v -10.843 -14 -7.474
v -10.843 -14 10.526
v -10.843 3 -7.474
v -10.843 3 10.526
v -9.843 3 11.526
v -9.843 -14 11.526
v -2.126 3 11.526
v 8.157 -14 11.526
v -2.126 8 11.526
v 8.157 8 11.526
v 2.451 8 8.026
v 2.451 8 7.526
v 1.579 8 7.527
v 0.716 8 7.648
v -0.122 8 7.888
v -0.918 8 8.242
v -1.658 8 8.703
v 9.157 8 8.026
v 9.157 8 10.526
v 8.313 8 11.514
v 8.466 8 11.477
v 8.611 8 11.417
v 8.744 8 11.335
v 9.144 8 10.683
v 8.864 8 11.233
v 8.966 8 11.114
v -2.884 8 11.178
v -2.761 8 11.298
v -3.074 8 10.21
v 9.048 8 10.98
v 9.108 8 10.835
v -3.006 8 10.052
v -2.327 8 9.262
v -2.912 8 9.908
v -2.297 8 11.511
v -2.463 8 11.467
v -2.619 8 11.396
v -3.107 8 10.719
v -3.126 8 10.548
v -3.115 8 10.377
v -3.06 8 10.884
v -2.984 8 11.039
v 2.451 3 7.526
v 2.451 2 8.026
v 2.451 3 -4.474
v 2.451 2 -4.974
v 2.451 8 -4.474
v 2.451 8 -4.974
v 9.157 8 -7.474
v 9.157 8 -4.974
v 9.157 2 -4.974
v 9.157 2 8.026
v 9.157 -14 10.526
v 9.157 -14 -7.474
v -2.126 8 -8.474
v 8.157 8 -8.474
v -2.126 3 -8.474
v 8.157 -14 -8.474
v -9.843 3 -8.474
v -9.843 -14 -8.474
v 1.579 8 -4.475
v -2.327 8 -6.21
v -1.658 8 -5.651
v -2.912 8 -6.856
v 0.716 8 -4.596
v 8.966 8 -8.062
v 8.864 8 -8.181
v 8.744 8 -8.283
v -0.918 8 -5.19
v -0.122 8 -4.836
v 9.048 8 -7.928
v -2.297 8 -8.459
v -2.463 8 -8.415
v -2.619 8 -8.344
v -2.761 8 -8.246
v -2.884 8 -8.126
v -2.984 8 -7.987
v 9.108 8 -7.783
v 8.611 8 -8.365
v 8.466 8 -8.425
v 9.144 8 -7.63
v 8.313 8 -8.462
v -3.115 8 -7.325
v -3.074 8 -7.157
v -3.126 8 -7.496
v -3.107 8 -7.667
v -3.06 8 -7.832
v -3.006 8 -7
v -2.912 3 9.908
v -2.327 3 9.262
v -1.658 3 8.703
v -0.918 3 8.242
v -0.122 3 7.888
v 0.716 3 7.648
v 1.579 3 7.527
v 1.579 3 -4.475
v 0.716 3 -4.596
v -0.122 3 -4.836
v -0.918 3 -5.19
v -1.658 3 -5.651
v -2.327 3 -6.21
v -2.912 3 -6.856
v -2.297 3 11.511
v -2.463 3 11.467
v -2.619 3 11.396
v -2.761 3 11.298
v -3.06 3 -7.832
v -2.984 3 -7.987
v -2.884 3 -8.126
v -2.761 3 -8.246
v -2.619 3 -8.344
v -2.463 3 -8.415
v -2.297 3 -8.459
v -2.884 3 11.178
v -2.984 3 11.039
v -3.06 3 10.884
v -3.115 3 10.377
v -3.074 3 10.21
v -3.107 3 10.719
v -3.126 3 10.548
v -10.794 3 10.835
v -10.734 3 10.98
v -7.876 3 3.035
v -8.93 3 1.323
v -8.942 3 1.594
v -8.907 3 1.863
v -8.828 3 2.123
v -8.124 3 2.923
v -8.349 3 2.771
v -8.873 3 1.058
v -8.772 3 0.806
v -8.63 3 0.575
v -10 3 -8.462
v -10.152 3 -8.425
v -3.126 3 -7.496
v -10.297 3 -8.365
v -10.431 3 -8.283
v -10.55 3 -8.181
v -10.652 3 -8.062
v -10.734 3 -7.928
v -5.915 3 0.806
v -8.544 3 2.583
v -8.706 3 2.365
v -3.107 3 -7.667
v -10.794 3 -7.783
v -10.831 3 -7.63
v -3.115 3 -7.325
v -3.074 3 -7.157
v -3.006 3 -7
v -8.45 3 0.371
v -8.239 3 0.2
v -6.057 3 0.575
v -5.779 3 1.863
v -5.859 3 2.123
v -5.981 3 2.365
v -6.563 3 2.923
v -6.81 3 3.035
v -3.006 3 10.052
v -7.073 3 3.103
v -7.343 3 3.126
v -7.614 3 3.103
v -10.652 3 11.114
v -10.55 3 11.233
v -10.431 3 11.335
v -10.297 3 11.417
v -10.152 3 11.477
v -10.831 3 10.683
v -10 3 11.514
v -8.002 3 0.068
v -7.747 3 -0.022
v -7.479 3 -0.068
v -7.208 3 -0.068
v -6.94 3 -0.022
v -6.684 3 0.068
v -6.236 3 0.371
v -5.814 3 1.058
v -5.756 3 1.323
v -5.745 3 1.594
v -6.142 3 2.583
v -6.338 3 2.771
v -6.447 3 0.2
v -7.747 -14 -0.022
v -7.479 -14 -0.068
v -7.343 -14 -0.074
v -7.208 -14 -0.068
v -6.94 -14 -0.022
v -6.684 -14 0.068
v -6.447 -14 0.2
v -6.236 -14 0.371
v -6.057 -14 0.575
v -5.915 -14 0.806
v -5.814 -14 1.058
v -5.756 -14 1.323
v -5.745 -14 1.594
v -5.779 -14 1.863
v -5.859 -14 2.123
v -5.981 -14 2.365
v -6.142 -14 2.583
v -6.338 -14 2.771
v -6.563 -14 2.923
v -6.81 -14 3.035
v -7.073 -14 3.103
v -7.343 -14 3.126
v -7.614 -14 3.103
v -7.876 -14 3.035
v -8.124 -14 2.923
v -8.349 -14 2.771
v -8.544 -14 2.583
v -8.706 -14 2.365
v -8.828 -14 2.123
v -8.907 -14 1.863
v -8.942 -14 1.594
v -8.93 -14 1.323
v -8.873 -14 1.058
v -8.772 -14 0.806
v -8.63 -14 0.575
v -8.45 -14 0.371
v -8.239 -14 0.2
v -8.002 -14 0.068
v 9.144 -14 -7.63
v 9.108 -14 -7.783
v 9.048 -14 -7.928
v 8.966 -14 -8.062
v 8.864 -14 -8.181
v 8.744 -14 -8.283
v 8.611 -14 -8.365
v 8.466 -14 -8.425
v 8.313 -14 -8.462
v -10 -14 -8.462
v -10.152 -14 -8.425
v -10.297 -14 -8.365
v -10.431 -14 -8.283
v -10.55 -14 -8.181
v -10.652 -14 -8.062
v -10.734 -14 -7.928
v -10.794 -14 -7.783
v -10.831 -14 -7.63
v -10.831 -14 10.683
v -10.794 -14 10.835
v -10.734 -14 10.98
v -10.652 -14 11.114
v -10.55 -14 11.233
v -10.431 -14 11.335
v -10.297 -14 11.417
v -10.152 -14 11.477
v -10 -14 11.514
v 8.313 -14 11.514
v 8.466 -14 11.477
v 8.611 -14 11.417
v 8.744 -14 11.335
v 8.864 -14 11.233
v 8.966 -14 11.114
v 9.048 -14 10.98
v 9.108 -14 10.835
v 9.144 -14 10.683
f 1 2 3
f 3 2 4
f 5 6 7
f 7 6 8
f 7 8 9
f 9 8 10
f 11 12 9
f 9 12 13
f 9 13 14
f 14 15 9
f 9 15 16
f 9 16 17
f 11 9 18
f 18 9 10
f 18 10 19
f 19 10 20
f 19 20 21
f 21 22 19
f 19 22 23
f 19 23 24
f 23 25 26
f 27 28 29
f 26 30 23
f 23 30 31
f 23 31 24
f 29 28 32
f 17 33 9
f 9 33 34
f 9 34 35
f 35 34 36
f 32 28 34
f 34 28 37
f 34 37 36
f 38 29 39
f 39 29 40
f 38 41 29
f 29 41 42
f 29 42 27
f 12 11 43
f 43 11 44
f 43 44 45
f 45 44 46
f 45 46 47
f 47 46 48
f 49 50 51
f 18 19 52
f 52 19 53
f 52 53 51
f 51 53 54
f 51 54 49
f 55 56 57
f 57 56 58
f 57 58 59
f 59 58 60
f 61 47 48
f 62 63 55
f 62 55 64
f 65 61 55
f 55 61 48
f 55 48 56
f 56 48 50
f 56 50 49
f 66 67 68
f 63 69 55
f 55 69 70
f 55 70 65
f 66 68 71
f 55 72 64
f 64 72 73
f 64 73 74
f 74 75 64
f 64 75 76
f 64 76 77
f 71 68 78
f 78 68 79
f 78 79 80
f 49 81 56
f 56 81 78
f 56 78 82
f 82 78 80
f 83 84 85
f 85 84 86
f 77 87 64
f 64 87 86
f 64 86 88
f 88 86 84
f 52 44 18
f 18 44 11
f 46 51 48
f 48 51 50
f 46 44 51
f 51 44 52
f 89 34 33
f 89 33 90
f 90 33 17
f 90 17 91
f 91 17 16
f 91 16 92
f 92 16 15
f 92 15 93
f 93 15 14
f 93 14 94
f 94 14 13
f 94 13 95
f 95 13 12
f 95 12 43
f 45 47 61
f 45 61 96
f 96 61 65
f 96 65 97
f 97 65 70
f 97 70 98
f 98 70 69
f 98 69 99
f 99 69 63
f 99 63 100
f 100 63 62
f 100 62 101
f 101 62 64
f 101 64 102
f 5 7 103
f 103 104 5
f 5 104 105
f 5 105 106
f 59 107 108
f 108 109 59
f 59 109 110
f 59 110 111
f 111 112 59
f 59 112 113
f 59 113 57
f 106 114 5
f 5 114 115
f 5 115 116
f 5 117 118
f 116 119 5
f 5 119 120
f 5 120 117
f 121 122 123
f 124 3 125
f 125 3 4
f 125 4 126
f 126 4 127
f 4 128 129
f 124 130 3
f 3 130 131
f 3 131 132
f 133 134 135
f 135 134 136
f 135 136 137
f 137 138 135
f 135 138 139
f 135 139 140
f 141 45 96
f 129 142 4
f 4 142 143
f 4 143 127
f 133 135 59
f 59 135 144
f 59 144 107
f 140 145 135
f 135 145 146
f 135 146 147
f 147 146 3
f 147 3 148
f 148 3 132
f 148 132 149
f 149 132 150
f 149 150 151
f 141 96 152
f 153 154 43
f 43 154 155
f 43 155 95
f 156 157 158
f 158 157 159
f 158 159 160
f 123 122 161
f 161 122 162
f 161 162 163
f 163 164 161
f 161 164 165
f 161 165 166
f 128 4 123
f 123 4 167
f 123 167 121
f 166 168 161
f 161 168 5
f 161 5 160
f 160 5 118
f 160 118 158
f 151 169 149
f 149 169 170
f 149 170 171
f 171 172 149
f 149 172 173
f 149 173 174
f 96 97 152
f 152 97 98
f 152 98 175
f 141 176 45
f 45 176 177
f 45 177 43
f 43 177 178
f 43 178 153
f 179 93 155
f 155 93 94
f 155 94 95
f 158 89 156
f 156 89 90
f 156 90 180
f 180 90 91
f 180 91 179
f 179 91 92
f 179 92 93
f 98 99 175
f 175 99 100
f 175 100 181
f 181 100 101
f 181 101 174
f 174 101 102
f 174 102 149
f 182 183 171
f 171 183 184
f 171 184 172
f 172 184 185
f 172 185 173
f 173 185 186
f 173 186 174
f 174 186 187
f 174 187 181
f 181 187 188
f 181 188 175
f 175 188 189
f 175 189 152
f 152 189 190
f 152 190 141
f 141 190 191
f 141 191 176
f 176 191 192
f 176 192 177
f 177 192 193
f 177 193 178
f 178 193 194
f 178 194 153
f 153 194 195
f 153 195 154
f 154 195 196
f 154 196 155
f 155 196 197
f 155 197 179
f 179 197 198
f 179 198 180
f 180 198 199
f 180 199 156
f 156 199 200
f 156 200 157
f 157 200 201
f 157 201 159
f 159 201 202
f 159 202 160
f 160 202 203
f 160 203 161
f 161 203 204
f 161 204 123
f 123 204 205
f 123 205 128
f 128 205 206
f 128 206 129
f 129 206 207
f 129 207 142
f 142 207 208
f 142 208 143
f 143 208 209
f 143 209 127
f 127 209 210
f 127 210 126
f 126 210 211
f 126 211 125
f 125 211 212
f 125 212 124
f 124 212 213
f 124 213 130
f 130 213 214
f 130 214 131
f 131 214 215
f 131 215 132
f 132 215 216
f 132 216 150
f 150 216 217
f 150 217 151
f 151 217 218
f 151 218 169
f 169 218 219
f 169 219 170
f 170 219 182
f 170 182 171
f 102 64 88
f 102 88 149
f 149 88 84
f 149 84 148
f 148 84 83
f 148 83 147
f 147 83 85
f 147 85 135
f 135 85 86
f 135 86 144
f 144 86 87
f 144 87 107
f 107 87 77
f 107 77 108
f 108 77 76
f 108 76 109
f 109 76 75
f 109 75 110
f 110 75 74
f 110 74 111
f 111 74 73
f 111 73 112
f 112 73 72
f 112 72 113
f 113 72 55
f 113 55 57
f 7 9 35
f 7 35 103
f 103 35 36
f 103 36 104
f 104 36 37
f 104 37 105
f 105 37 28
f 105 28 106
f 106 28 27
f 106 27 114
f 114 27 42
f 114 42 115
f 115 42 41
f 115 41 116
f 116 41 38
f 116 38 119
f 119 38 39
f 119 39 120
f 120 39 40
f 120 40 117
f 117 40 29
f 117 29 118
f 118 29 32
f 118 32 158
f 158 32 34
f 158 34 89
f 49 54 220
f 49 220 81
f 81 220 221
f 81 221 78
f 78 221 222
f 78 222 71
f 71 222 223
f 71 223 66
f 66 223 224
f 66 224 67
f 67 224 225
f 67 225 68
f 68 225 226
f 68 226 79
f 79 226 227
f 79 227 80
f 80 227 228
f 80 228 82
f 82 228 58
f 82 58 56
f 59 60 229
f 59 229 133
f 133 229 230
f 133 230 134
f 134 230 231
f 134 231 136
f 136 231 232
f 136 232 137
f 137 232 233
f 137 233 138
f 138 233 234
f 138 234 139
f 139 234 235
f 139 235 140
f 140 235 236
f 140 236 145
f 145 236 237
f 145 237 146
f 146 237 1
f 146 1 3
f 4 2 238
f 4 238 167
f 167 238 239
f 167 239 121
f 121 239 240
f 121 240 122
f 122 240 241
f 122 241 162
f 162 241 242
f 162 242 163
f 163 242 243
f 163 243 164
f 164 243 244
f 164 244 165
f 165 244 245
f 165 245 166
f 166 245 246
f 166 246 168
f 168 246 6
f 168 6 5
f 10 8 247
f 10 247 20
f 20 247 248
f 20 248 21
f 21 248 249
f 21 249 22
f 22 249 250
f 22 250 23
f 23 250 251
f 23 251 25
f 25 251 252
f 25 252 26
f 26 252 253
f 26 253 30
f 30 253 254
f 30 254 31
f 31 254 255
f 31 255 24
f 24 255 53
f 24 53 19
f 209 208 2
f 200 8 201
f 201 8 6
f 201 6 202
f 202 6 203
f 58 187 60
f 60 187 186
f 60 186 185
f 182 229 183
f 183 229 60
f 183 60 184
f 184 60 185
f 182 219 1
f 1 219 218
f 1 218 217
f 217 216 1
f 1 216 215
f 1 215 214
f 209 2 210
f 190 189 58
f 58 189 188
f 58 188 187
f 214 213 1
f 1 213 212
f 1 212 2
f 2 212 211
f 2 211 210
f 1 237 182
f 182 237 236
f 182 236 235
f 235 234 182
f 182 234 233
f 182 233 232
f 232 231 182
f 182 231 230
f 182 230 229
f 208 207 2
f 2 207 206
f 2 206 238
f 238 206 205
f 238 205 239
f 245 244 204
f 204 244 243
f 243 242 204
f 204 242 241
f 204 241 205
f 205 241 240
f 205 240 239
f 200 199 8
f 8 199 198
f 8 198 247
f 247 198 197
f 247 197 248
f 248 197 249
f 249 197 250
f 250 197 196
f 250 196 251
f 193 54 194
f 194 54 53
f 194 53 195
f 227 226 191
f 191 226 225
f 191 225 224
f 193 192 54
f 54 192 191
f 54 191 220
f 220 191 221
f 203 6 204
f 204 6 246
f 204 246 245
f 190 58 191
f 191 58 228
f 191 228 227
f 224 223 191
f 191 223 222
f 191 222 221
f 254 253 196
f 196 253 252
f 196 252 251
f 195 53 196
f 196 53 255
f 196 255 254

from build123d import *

# Parameters (mm, degrees)
CROQUIS2_W              = 20
CROQUIS2_H              = 20
SALIENTE_EXTRUIR1_DEPTH = 8
CROQUIS3_W              = 6.705751287
CROQUIS3_H              = 13
CORTAR_EXTRUIR1_DEPTH   = 6
CORTAR_EXTRUIR2_DEPTH   = 5
CROQUIS6_R              = 1.6
CORTAR_EXTRUIR3_DEPTH   = 3
REDONDEO1_R             = 1
CROQUIS7_R              = 1.6
SALIENTE_EXTRUIR2_DEPTH = 14


with BuildPart() as part:
    # Croquis2 → Saliente-Extruir1 (new body)
    with BuildSketch(Plane(origin=(0, 0, 0), x_dir=(1, 0, 0), z_dir=(0, 1, 0))):
        with Locations((-0.843373494, -1.526104418)):
            Rectangle(CROQUIS2_W, CROQUIS2_H)
    extrude(amount=SALIENTE_EXTRUIR1_DEPTH)

    # Croquis3 → Cortar-Extruir1 (cut)
    with BuildSketch(Plane(origin=(0, 8, 0), x_dir=(1, 0, 0), z_dir=(0, 1, 0))):
        with Locations((5.803750863, -1.526104418)):
            Rectangle(CROQUIS3_W, CROQUIS3_H)
    extrude(amount=-CORTAR_EXTRUIR1_DEPTH, mode=Mode.SUBTRACT)

    # Croquis5 → Cortar-Extruir2 (cut)
    with BuildSketch(Plane(origin=(0, 8, 0), x_dir=(1, 0, 0), z_dir=(0, 1, 0))):
        with BuildLine():
            Line((2.450875219, -7.526104418), (2.450875219, 4.473895582))
            ThreePointArc((2.450875219, 4.473895582), (2.020425803, 4.459111389), (1.589976387, 4.473895582))
            ThreePointArc((1.589976387, 4.473895582), (-1.703861847, 5.684131739), (-3.832537389, 8.473895582))
            Line((-3.832537389, 8.473895582), (-10.843373494, 8.473895582))
            Line((-10.843373494, 8.473895582), (-10.843373494, -11.526104418))
            Line((-10.843373494, -11.526104418), (-3.832537389, -11.526104418))
            ThreePointArc((-3.832537389, -11.526104418), (-1.703861847, -8.736340574), (1.589976387, -7.526104418))
            ThreePointArc((1.589976387, -7.526104418), (2.020425803, -7.511320225), (2.450875219, -7.526104418))
        make_face()
    extrude(amount=-CORTAR_EXTRUIR2_DEPTH, mode=Mode.SUBTRACT)

    # Croquis6 → Cortar-Extruir3 (cut)
    with BuildSketch(Plane(origin=(0, 3, 0), x_dir=(1, 0, 0), z_dir=(0, 1, 0))):
        with Locations(Location((-7.343373494, -1.526104418, 0), (0, 0, 270))):
            Circle(CROQUIS6_R)
    extrude(amount=-CORTAR_EXTRUIR3_DEPTH, mode=Mode.SUBTRACT)

    # Redondeo1
    redondeo1_edges = [part.edges().sort_by_distance(p)[0] for p in [
        (-10.843373494, 1.5, -8.473895582),
        (-10.843373494, 1.5, 11.526104418),
        (-3.832537389, 5.5, 11.526104418),
        (-3.832537389, 5.5, -8.473895582),
        (9.156626506, 4, -8.473895582),
        (9.156626506, 4, 11.526104418),
    ]]
    fillet(redondeo1_edges, radius=REDONDEO1_R)

    # Croquis7 → Saliente-Extruir2 (add)
    with BuildSketch(Plane.XZ):
        with BuildLine():
            Line((-9.843373494, -8.473895582), (8.156626506, -8.473895582))
            ThreePointArc((8.156626506, -8.473895582), (8.863733287, -8.181002364), (9.156626506, -7.473895582))
            Line((9.156626506, -7.473895582), (9.156626506, 10.526104418))
            ThreePointArc((9.156626506, 10.526104418), (8.863733287, 11.233211199), (8.156626506, 11.526104418))
            Line((8.156626506, 11.526104418), (-9.843373494, 11.526104418))
            ThreePointArc((-9.843373494, 11.526104418), (-10.550480275, 11.233211199), (-10.843373494, 10.526104418))
            Line((-10.843373494, 10.526104418), (-10.843373494, -7.473895582))
            ThreePointArc((-10.843373494, -7.473895582), (-10.550480275, -8.181002364), (-9.843373494, -8.473895582))
        make_face()
        with Locations(Location((-7.343373494, 1.526104418, 0), (0, 0, 90))):
            Circle(CROQUIS7_R, mode=Mode.SUBTRACT)
    extrude(amount=SALIENTE_EXTRUIR2_DEPTH)


solid = part.part
